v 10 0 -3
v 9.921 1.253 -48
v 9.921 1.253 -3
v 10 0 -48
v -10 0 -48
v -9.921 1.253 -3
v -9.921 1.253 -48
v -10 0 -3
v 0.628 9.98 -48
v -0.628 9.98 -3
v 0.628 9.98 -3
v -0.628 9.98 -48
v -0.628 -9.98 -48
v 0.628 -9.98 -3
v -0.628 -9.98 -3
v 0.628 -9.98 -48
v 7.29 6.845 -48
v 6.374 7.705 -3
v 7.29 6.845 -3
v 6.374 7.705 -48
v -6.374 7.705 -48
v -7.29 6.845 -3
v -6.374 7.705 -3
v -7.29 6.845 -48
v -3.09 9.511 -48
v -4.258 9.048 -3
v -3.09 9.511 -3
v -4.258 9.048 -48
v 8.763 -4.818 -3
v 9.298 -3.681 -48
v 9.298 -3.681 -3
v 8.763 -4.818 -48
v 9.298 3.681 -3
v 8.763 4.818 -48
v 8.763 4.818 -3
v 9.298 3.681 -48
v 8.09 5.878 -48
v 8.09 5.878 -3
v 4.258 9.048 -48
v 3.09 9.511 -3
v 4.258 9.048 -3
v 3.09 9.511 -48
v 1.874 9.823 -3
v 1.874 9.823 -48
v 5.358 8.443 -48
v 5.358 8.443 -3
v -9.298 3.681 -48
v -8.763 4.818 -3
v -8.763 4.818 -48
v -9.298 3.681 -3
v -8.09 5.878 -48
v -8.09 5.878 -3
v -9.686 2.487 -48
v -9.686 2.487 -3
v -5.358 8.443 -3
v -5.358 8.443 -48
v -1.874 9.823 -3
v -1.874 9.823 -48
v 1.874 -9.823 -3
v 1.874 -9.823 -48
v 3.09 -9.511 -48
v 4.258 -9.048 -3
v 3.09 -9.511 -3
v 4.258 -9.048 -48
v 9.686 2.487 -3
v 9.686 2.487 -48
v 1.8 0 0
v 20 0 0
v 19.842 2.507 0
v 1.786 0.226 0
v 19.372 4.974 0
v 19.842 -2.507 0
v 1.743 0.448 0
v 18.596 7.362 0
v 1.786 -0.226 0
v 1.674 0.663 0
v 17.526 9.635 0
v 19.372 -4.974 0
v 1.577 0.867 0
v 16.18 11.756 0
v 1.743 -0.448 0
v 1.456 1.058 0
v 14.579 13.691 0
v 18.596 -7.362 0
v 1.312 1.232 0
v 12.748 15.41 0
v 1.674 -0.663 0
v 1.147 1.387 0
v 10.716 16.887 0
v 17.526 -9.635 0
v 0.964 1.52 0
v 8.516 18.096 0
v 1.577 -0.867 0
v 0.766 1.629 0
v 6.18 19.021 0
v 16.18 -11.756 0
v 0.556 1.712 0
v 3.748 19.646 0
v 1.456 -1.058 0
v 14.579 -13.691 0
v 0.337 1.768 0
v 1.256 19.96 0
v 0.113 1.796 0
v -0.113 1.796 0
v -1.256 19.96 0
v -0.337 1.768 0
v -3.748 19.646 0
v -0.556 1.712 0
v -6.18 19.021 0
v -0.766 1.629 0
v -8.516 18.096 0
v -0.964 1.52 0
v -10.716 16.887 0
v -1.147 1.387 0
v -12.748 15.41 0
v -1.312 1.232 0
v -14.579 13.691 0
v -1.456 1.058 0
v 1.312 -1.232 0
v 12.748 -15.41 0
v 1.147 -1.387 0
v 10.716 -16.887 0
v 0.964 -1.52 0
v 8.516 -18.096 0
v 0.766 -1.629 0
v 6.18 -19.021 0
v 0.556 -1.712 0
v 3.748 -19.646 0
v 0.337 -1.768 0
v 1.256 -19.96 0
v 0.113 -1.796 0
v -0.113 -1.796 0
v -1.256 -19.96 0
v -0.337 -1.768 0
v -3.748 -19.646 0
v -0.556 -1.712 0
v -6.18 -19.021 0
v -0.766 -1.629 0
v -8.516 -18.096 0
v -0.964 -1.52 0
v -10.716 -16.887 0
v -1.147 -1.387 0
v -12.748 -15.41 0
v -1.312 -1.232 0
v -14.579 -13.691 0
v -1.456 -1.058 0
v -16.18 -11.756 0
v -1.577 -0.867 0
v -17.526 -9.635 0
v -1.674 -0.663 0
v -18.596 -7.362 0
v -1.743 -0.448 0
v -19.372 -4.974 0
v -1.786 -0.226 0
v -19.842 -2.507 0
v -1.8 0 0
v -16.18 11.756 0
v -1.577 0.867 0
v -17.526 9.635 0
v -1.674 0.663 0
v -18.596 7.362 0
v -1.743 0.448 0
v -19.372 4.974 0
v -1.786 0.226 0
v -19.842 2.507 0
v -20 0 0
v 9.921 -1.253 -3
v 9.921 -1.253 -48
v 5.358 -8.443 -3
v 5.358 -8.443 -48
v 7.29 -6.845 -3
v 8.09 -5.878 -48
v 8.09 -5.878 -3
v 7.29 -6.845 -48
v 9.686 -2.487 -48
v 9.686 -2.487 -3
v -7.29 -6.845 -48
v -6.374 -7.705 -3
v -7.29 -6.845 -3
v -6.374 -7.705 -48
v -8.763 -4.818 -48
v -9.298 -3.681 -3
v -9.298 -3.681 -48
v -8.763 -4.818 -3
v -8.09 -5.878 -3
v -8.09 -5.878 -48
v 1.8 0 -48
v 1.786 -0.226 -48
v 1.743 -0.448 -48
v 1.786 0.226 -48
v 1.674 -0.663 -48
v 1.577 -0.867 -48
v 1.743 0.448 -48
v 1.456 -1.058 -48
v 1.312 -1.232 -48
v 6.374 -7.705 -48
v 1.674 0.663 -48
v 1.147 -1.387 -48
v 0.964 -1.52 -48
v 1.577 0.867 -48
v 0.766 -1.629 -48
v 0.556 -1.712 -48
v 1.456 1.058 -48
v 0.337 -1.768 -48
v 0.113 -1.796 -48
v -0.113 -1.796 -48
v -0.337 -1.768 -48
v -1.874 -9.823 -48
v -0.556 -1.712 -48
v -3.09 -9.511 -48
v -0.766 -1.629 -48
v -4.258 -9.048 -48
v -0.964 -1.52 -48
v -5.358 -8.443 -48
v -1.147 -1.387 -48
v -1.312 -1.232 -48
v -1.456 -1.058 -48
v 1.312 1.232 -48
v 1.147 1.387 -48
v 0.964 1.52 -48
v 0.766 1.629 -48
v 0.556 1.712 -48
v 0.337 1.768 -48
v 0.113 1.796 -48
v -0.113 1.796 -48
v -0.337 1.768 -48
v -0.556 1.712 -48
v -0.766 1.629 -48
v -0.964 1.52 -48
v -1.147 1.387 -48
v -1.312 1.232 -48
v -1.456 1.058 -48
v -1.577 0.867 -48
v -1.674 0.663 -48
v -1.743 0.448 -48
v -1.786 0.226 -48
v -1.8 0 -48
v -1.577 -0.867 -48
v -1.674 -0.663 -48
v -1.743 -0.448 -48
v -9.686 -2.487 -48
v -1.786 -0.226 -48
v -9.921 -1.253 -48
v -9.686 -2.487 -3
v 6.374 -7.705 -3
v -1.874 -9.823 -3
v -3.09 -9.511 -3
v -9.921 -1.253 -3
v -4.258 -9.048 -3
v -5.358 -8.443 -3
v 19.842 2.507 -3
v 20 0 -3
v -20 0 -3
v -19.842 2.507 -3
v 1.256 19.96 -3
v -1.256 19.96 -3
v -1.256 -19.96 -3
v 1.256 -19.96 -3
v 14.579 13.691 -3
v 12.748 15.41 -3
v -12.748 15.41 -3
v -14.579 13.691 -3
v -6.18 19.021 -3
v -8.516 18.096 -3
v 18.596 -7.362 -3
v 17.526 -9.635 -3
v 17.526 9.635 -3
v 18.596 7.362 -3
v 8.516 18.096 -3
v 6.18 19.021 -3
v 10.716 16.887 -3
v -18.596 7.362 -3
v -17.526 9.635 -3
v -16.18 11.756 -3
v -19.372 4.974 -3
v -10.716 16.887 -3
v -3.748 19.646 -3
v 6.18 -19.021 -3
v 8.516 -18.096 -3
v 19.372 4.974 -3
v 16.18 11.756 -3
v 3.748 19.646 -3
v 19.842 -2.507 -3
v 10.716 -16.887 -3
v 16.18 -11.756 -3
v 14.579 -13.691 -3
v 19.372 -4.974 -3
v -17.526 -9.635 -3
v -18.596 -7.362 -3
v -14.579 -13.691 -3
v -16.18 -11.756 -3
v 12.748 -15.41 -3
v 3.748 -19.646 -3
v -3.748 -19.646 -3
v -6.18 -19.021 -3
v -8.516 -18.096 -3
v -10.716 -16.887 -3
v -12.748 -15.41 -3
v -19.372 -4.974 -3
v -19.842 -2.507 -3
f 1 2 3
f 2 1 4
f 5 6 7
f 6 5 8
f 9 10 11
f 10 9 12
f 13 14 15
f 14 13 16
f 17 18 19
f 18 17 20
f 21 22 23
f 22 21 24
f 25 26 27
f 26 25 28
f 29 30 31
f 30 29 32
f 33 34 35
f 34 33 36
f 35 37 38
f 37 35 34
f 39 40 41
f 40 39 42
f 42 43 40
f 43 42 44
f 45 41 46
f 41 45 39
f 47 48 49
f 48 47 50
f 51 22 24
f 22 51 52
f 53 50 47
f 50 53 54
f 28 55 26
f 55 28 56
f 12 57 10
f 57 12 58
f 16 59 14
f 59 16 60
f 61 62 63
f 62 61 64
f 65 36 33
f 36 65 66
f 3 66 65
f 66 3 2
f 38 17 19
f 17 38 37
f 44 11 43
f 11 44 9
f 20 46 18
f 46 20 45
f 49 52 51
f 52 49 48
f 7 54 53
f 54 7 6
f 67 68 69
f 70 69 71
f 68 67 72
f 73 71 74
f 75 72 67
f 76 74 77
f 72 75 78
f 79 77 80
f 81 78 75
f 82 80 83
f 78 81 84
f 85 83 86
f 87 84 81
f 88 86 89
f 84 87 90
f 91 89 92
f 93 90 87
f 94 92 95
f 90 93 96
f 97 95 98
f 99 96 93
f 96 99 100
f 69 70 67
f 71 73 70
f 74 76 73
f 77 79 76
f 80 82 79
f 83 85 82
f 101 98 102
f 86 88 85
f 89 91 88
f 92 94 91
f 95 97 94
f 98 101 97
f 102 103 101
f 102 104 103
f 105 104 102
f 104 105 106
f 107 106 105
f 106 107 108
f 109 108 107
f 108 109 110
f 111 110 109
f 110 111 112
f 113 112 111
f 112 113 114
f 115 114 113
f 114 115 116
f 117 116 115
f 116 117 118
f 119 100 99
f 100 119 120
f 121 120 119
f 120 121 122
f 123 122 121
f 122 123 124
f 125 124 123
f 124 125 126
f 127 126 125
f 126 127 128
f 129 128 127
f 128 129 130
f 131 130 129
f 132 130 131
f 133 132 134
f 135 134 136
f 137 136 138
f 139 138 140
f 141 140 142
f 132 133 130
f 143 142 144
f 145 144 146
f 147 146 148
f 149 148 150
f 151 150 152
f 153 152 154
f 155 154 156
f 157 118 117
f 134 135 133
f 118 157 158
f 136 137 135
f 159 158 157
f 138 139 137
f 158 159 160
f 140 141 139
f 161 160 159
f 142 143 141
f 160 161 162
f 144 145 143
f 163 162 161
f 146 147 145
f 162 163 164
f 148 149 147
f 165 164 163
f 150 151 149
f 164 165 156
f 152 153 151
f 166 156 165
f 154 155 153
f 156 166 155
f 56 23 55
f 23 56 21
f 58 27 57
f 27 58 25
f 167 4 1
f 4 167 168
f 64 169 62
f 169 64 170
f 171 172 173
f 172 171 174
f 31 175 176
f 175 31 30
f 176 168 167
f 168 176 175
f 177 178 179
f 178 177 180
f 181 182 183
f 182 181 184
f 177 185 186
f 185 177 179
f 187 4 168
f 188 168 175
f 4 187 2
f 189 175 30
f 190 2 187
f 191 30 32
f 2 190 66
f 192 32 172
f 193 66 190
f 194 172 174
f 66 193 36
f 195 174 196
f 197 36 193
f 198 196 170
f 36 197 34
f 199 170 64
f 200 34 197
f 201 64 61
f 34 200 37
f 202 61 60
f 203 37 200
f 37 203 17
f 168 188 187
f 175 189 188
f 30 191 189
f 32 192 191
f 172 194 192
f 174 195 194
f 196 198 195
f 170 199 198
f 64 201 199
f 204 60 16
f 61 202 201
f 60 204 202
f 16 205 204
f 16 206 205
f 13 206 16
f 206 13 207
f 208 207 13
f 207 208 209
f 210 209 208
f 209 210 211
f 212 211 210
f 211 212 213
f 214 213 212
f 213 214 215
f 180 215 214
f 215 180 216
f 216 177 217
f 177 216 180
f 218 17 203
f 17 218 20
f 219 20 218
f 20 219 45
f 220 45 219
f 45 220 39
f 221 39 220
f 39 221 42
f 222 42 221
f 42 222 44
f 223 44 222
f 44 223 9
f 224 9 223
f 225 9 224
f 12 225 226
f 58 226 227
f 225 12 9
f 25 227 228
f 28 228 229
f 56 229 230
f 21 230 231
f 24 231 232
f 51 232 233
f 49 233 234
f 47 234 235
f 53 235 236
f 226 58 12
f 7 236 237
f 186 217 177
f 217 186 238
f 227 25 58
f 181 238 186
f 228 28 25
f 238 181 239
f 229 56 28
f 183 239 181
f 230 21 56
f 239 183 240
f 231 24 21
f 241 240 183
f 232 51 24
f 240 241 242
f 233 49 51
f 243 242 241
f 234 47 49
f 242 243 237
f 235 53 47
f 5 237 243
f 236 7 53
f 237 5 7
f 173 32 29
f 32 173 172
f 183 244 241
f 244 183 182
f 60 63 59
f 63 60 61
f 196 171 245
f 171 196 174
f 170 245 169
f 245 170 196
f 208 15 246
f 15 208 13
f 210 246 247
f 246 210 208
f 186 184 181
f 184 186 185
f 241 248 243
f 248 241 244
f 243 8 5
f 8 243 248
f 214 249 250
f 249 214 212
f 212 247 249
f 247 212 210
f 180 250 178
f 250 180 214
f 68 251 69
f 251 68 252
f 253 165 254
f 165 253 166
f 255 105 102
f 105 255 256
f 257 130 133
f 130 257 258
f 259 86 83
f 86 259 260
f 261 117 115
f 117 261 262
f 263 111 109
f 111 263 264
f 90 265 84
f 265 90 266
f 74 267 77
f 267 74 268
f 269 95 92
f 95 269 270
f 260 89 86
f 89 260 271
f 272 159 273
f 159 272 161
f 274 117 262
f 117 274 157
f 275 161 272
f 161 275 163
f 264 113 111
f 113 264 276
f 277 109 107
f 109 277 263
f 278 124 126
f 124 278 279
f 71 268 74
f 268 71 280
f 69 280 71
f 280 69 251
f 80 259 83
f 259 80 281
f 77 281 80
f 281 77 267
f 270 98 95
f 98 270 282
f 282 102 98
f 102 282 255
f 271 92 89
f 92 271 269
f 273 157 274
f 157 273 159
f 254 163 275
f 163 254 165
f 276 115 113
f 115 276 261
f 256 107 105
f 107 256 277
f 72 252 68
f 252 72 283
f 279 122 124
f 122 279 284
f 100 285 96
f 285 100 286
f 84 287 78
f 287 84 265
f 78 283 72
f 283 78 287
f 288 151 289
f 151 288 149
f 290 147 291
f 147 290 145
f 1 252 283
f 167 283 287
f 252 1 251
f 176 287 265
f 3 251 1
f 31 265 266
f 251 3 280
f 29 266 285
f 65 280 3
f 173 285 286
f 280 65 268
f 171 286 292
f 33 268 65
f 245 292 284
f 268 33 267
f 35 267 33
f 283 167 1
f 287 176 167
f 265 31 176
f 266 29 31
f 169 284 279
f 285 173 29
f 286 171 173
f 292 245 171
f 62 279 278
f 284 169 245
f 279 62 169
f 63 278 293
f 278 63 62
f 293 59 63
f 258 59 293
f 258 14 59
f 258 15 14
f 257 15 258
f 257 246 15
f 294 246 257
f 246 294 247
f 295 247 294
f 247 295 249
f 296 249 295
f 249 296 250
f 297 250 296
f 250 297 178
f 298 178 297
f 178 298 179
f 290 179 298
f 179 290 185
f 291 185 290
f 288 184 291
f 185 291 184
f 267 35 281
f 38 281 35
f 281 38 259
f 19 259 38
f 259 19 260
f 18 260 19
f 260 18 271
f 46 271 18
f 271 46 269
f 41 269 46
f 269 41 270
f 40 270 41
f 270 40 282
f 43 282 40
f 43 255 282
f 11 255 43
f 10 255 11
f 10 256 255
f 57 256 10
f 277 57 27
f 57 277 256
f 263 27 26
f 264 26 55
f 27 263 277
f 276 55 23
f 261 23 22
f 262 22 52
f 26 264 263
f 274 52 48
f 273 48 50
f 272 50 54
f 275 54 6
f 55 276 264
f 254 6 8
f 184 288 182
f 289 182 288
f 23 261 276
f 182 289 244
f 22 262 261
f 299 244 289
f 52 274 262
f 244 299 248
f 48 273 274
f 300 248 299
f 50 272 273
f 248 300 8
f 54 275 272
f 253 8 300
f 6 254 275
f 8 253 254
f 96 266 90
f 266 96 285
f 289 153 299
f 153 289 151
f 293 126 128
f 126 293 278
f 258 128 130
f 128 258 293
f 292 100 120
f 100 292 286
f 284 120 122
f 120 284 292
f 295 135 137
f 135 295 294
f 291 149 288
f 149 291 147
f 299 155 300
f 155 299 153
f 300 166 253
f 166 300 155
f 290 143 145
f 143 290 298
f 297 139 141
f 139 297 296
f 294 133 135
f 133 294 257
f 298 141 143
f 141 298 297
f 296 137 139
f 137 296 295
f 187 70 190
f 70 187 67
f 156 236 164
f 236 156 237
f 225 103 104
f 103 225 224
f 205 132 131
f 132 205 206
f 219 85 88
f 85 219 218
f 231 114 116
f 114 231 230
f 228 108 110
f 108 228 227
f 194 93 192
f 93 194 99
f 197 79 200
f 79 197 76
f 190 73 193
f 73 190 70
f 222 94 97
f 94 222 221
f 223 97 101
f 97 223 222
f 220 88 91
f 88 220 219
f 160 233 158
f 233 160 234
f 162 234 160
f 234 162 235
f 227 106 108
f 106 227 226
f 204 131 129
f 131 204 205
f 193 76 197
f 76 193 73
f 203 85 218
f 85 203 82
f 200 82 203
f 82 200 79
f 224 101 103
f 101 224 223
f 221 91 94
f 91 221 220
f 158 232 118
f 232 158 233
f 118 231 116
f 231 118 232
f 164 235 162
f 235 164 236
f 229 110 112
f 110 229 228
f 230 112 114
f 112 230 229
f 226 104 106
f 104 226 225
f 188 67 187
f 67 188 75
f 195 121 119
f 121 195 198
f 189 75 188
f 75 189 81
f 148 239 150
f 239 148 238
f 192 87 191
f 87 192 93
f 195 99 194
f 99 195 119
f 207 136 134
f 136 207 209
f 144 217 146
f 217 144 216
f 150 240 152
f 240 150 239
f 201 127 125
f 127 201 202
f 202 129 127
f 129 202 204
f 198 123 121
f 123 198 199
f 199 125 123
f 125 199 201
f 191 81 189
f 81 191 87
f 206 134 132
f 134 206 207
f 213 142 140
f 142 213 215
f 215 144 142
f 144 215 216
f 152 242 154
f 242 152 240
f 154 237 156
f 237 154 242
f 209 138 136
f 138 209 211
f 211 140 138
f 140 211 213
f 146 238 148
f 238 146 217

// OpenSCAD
$fn = 50;


difference() {
	union() {
		translate(v = [0, 0, -48.0000000000]) {
			cylinder(h = 48, r = 10.0000000000);
		}
		translate(v = [0, 0, -3.0000000000]) {
			cylinder(h = 3, r = 20.0000000000);
		}
	}
	union() {
		#translate(v = [0, 0, -48]) {
			cylinder(h = 48, r = 1.8000000000);
		}
	}
}
